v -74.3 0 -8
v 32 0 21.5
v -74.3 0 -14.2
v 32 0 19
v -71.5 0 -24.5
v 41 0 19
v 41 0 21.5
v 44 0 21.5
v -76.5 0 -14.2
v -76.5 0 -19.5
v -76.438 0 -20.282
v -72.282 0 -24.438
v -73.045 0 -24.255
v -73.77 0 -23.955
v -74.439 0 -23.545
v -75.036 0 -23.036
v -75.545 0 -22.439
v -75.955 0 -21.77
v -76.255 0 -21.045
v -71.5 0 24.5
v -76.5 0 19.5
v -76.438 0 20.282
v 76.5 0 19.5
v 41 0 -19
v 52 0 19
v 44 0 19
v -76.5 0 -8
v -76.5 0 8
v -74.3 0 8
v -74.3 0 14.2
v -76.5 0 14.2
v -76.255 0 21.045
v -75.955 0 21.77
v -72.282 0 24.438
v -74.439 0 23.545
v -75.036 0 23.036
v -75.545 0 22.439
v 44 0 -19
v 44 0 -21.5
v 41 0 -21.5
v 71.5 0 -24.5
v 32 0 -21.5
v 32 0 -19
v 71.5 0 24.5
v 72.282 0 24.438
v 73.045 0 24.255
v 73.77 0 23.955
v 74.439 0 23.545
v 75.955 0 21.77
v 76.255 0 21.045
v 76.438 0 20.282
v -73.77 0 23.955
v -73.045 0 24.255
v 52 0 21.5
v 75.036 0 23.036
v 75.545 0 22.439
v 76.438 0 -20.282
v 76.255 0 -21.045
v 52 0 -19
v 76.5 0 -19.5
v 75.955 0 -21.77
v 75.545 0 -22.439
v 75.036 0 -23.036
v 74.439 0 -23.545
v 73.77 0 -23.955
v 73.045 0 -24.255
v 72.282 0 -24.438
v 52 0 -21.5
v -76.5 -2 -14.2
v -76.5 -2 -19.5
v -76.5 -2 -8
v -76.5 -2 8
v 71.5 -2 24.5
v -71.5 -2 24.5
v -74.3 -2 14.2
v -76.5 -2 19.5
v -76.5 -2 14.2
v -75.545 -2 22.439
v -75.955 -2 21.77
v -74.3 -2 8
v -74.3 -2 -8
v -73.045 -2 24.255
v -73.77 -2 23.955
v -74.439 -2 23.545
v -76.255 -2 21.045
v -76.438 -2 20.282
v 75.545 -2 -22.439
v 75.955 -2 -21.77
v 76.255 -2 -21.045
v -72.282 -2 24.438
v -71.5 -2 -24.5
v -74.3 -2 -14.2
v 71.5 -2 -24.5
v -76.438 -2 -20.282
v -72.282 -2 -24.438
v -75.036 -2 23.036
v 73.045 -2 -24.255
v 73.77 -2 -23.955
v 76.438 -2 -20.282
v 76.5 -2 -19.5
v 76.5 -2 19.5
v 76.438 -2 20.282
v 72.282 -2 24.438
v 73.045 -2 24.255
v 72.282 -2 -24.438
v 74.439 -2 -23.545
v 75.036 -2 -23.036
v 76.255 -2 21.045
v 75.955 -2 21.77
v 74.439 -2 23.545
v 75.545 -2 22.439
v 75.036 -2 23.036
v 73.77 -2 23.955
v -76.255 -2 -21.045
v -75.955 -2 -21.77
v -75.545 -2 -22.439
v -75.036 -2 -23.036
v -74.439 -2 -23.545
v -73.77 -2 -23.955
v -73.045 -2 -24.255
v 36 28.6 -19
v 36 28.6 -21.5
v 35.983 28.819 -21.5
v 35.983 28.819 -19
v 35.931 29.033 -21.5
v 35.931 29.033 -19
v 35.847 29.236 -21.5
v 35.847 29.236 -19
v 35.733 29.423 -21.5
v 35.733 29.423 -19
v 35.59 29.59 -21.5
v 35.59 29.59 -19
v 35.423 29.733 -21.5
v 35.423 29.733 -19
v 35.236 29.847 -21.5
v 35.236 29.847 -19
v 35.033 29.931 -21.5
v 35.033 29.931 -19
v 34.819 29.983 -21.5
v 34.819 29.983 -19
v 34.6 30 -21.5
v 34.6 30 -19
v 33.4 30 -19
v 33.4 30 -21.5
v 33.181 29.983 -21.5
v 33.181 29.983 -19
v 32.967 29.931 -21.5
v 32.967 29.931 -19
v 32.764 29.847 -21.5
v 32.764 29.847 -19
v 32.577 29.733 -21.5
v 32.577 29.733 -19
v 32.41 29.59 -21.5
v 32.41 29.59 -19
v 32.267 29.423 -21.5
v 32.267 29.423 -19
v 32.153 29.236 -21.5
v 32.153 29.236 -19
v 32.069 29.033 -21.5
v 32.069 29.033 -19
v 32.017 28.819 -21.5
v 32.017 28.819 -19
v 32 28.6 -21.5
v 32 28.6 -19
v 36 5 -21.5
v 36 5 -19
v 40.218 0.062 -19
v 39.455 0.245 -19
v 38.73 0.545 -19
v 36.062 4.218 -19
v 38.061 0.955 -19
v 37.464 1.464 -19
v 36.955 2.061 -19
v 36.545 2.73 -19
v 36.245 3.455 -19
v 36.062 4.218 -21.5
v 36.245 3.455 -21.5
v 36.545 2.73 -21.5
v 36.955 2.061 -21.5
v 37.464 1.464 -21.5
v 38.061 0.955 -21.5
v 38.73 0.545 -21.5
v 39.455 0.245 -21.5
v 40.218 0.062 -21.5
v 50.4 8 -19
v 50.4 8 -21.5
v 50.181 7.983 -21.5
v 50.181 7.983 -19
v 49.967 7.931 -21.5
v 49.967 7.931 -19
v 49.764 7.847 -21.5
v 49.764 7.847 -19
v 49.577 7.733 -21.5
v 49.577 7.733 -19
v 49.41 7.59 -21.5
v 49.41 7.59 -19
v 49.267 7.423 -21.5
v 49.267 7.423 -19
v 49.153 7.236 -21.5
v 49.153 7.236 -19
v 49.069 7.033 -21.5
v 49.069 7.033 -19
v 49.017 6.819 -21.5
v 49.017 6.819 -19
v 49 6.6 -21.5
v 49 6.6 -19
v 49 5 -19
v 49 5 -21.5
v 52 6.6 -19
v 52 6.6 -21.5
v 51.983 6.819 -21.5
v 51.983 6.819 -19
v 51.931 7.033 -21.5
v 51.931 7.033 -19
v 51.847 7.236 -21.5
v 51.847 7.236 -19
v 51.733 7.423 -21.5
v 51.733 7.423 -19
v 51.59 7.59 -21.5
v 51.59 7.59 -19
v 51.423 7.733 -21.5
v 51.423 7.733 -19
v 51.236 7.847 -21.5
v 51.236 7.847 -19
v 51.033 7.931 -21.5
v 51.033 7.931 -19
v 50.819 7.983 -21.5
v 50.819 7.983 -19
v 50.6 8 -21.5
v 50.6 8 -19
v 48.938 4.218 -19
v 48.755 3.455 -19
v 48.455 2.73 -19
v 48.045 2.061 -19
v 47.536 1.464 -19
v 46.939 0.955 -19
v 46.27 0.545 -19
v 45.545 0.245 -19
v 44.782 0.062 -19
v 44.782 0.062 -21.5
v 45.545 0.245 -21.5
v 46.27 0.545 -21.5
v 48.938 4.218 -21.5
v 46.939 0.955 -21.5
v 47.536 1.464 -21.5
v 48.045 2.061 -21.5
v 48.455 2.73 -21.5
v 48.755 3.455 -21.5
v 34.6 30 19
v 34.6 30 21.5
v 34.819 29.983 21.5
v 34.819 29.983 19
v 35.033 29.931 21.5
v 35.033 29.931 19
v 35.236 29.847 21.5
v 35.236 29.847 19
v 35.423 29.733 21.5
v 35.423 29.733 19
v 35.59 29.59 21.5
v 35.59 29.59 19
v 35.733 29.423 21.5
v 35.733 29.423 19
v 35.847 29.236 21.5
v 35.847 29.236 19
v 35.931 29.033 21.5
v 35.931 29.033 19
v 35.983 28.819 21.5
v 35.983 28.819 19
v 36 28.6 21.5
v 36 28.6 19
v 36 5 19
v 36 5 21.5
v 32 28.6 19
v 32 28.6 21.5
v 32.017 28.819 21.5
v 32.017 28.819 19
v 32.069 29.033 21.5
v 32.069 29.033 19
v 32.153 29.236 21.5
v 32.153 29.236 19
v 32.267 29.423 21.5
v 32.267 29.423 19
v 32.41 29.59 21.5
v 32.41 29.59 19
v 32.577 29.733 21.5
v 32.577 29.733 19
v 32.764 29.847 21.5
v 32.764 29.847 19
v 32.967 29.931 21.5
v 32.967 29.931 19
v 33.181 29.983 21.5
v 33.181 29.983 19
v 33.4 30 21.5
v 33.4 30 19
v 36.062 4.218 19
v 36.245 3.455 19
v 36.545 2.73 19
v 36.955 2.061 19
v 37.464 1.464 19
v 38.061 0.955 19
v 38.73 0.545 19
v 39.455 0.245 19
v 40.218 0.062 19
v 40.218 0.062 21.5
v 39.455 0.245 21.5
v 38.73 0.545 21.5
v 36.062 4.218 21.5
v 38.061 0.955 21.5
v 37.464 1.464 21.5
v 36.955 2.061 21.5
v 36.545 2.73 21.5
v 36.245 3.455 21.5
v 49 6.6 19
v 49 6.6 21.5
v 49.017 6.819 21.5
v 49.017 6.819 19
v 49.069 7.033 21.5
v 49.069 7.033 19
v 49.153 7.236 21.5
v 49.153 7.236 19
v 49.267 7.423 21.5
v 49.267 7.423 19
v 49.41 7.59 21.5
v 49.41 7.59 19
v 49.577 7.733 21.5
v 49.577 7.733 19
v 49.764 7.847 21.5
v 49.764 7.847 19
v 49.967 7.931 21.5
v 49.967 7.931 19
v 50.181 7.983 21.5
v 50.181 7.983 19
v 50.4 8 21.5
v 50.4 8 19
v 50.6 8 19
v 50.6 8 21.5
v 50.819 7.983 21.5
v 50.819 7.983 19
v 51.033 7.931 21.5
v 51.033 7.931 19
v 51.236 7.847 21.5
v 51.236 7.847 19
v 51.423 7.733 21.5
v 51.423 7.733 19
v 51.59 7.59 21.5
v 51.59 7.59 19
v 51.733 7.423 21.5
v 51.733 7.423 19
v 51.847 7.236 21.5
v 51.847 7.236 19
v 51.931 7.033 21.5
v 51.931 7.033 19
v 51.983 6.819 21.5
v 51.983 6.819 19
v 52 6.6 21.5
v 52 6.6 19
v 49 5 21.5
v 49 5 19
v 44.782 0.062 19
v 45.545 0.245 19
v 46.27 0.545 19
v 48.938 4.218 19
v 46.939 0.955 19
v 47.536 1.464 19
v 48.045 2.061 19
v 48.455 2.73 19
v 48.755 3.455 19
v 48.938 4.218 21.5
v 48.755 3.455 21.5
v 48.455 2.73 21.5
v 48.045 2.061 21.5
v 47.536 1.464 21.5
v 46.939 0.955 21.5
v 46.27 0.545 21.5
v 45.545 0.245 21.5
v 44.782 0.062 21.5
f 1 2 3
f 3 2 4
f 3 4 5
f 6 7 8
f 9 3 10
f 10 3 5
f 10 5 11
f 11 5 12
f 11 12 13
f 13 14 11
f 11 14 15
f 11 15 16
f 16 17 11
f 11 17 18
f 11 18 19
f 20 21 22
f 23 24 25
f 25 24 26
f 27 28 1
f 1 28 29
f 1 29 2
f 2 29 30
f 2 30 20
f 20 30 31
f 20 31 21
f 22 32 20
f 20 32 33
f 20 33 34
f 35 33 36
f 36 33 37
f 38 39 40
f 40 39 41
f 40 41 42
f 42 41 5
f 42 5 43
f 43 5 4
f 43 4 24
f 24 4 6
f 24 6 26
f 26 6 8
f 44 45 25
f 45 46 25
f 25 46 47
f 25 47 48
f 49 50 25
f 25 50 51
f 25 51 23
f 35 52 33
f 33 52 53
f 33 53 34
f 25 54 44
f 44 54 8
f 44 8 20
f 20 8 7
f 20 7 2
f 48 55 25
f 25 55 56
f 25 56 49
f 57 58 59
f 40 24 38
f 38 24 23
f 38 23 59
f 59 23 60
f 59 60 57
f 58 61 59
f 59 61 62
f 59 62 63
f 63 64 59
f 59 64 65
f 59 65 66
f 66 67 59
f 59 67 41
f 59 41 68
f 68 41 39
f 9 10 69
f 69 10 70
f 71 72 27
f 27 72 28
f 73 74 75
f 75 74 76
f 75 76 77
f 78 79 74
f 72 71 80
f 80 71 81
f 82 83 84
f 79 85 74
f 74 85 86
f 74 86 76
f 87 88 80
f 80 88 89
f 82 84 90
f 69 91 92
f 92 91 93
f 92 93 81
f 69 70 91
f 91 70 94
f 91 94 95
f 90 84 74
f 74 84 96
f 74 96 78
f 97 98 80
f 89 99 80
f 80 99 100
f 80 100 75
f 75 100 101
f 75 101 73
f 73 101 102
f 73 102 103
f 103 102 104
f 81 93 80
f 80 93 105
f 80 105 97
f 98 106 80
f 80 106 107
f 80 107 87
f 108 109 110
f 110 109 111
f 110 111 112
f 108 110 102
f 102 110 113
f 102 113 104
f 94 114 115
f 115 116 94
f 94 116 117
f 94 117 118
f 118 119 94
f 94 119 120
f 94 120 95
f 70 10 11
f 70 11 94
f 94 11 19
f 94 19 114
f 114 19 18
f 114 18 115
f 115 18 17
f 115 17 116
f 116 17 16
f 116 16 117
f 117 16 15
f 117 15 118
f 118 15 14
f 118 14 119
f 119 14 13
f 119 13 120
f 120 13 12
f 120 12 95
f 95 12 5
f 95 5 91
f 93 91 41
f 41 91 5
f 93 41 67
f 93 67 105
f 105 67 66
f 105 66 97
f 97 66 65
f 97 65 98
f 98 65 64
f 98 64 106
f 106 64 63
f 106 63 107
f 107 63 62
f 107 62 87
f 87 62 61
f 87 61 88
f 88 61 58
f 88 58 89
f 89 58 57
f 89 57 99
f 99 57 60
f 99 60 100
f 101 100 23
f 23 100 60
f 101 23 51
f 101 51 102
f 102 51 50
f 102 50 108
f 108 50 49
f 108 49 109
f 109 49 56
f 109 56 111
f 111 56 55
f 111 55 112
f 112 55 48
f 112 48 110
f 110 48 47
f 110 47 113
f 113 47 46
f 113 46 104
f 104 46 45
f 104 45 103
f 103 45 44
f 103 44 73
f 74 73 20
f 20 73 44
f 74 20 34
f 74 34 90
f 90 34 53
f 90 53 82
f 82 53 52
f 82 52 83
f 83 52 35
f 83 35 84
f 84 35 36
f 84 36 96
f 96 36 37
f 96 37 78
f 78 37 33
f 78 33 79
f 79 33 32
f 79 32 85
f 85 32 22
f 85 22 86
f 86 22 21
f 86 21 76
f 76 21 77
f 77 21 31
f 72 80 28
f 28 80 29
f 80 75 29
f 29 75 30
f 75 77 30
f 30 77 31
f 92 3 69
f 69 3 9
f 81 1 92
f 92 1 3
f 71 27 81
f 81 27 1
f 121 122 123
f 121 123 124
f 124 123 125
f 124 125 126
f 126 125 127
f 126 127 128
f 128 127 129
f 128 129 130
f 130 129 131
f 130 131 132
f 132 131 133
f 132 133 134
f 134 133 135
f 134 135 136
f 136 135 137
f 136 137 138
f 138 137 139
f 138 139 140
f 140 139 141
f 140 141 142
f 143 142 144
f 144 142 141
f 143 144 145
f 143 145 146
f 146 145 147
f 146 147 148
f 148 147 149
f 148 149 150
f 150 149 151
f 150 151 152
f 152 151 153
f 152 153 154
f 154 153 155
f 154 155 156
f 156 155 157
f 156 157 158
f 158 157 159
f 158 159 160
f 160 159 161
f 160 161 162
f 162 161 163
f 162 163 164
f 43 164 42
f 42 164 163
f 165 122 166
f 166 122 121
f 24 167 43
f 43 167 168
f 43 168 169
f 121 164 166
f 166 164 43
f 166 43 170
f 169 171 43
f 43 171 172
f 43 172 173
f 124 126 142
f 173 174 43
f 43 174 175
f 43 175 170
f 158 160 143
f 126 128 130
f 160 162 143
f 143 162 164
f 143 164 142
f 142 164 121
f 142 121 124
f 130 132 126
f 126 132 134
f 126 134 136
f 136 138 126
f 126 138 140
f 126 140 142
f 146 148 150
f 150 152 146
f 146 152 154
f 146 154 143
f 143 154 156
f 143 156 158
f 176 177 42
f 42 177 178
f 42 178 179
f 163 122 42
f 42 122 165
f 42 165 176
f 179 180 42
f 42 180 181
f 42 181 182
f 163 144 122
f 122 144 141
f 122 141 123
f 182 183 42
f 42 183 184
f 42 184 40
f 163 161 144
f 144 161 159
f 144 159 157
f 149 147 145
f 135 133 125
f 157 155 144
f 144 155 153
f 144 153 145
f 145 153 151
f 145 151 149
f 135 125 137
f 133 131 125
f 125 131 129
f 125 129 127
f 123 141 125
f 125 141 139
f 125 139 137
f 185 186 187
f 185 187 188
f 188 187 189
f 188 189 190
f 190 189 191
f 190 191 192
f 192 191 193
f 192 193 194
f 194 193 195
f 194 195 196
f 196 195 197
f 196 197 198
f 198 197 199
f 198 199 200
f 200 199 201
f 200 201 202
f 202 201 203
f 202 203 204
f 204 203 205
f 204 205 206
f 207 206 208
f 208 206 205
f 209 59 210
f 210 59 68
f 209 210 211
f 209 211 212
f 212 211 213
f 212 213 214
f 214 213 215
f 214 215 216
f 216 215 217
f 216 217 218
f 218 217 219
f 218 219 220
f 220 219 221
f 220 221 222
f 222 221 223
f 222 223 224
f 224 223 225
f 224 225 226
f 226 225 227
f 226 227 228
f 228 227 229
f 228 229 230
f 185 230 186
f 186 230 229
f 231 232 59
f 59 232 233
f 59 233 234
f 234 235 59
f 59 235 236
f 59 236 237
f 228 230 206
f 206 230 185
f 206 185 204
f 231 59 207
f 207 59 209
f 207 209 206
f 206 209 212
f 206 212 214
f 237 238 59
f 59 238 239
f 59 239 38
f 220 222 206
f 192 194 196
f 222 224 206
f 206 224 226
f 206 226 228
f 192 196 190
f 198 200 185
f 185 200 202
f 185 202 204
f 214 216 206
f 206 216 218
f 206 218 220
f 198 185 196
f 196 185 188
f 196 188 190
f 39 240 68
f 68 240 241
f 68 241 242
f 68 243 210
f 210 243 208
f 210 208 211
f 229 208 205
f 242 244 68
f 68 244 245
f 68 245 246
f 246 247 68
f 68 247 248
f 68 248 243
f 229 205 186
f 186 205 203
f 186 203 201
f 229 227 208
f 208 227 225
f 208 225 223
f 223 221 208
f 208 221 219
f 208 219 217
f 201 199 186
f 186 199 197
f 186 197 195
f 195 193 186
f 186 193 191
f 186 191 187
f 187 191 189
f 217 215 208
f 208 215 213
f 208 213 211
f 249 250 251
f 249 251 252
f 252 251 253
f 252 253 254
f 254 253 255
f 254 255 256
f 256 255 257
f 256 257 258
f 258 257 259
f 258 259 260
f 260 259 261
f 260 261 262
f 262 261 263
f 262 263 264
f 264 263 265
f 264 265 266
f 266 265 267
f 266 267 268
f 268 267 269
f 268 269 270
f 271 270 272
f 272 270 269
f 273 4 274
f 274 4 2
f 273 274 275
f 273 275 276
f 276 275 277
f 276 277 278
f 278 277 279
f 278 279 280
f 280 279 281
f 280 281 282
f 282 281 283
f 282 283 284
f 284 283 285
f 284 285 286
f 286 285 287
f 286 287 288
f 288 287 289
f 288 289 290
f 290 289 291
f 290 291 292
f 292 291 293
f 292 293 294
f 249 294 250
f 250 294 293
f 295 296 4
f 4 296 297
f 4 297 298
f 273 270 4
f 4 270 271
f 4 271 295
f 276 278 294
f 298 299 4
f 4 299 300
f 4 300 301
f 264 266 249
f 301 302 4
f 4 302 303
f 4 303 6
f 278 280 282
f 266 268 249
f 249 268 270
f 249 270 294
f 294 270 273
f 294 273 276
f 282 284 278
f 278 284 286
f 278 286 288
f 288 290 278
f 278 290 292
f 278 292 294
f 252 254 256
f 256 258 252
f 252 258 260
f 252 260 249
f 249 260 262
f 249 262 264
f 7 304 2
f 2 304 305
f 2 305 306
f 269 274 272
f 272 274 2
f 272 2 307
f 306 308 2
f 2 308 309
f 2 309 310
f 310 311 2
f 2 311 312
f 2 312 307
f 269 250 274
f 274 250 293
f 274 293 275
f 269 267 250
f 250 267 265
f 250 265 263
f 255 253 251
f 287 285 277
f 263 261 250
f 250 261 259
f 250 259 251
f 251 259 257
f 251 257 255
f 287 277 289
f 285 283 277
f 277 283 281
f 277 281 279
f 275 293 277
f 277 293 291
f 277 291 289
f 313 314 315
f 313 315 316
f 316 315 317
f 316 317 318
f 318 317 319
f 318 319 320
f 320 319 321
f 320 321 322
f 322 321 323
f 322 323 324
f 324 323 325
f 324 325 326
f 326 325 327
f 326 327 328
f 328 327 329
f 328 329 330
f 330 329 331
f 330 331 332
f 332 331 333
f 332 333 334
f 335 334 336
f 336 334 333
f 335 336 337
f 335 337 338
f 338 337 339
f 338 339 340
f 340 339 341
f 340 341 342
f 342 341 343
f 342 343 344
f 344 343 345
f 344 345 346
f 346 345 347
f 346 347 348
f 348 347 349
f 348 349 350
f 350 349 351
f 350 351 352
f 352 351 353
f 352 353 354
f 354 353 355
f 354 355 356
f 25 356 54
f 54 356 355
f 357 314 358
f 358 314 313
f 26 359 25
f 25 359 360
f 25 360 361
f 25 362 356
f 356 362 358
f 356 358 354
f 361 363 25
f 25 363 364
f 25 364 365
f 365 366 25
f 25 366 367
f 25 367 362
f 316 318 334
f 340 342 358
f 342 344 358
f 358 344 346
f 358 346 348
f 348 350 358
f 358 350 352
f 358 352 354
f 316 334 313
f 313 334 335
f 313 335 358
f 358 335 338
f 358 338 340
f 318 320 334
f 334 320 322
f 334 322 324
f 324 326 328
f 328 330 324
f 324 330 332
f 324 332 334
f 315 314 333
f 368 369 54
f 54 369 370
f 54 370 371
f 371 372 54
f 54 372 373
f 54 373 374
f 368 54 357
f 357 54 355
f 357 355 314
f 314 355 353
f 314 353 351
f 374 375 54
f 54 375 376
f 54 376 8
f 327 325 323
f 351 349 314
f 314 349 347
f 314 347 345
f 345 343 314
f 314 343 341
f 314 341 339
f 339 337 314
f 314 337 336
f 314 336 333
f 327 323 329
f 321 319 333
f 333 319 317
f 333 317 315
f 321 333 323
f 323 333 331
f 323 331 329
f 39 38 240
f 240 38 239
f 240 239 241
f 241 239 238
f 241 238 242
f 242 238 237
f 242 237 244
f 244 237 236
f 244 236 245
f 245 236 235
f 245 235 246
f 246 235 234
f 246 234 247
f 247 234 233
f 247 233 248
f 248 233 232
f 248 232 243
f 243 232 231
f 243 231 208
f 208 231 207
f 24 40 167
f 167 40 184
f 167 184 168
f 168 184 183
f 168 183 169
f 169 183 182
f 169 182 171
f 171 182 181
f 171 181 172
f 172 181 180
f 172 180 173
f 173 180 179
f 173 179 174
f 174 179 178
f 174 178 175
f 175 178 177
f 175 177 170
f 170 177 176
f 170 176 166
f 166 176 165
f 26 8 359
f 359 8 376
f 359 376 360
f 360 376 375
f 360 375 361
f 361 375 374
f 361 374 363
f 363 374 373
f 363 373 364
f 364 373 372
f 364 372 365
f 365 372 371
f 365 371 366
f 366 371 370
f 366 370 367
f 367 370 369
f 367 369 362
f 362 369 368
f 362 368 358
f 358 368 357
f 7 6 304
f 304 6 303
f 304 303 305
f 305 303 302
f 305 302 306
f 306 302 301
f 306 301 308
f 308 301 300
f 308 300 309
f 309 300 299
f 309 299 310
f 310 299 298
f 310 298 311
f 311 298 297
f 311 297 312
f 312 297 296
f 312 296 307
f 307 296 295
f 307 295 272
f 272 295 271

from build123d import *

# Parameters (mm, degrees)
EXTRUDE_3_DEPTH     = 2
CUT_EXTRUDE_START   = -3
SKETCH_4_W          = 2.2
SKETCH_4_H          = 6.2
CUT_EXTRUDE_2_DEPTH = 4
EXTRUDE_4_DEPTH     = 2.5
FILLET_1_R          = 5


with BuildPart() as part:
    # Эскиз1 → Бобышка-Вытянуть3 (new body)
    with BuildSketch(Plane(origin=(0, 0, 0), x_dir=(1, 0, 0), z_dir=(0, 1, 0))):
        with BuildLine():
            Line((71.5, 24.5), (-71.5, 24.5))
            ThreePointArc((-71.5, 24.5), (-75.035533906, 23.035533906), (-76.5, 19.5))
            Line((-76.5, 19.5), (-76.5, -19.5))
            ThreePointArc((-76.5, -19.5), (-75.035533906, -23.035533906), (-71.5, -24.5))
            Line((-71.5, -24.5), (71.5, -24.5))
            ThreePointArc((71.5, -24.5), (75.035533906, -23.035533906), (76.5, -19.5))
            Line((76.5, -19.5), (76.5, 19.5))
            ThreePointArc((76.5, 19.5), (75.035533906, 23.035533906), (71.5, 24.5))
        make_face()
    extrude(amount=-EXTRUDE_3_DEPTH)

    # Эскиз4 → Вырез-Вытянуть2 (cut)
    with BuildSketch(Plane(origin=(0, 0, 0), x_dir=(1, 0, 0), z_dir=(0, 1, 0)).offset(CUT_EXTRUDE_START)):
        with Locations((-75.4, -11.1)):
            Rectangle(SKETCH_4_W, SKETCH_4_H)
    cut_extrude_2 = extrude(amount=CUT_EXTRUDE_2_DEPTH, mode=Mode.SUBTRACT)

    # Зеркальное отражение3: Вырез-Вытянуть2 across plane
    add(cut_extrude_2.mirror(Plane.XY), mode=Mode.SUBTRACT)

    # Эскиз6 → Бобышка-Вытянуть4 (add)
    with BuildSketch(Plane(origin=(0, 0, -21.5), x_dir=(-1, 0, 0), z_dir=(0, 0, -1))):
        with BuildLine():
            ThreePointArc((-36, 28.6), (-35.589949494, 29.589949494), (-34.6, 30))
            Line((-34.6, 30), (-33.4, 30))
            ThreePointArc((-33.4, 30), (-32.410050506, 29.589949494), (-32, 28.6))
            Line((-32, 28.6), (-32, 0))
            Line((-32, 0), (-36, 0))
            Line((-36, 0), (-36, 28.6))
        make_face()
        with BuildLine():
            ThreePointArc((-50.4, 8), (-49.410050506, 7.589949494), (-49, 6.6))
            Line((-49, 6.6), (-49, 0))
            Line((-49, 0), (-52, 0))
            Line((-52, 0), (-52, 6.6))
            ThreePointArc((-52, 6.6), (-51.589949494, 7.589949494), (-50.6, 8))
            Line((-50.6, 8), (-50.4, 8))
        make_face()
    extrude_4 = extrude(amount=-EXTRUDE_4_DEPTH)

    # Зеркальное отражение4: Бобышка-Вытянуть4 across plane
    add(extrude_4.mirror(Plane.XY))

    # Скругление1
    fillet_1_edges = [part.edges().sort_by_distance(p)[0] for p in [
        (36, 0, 20.25),
        (49, 0, 20.25),
        (36, 0, -20.25),
        (49, 0, -20.25),
    ]]
    fillet(fillet_1_edges, radius=FILLET_1_R)


solid = part.part
